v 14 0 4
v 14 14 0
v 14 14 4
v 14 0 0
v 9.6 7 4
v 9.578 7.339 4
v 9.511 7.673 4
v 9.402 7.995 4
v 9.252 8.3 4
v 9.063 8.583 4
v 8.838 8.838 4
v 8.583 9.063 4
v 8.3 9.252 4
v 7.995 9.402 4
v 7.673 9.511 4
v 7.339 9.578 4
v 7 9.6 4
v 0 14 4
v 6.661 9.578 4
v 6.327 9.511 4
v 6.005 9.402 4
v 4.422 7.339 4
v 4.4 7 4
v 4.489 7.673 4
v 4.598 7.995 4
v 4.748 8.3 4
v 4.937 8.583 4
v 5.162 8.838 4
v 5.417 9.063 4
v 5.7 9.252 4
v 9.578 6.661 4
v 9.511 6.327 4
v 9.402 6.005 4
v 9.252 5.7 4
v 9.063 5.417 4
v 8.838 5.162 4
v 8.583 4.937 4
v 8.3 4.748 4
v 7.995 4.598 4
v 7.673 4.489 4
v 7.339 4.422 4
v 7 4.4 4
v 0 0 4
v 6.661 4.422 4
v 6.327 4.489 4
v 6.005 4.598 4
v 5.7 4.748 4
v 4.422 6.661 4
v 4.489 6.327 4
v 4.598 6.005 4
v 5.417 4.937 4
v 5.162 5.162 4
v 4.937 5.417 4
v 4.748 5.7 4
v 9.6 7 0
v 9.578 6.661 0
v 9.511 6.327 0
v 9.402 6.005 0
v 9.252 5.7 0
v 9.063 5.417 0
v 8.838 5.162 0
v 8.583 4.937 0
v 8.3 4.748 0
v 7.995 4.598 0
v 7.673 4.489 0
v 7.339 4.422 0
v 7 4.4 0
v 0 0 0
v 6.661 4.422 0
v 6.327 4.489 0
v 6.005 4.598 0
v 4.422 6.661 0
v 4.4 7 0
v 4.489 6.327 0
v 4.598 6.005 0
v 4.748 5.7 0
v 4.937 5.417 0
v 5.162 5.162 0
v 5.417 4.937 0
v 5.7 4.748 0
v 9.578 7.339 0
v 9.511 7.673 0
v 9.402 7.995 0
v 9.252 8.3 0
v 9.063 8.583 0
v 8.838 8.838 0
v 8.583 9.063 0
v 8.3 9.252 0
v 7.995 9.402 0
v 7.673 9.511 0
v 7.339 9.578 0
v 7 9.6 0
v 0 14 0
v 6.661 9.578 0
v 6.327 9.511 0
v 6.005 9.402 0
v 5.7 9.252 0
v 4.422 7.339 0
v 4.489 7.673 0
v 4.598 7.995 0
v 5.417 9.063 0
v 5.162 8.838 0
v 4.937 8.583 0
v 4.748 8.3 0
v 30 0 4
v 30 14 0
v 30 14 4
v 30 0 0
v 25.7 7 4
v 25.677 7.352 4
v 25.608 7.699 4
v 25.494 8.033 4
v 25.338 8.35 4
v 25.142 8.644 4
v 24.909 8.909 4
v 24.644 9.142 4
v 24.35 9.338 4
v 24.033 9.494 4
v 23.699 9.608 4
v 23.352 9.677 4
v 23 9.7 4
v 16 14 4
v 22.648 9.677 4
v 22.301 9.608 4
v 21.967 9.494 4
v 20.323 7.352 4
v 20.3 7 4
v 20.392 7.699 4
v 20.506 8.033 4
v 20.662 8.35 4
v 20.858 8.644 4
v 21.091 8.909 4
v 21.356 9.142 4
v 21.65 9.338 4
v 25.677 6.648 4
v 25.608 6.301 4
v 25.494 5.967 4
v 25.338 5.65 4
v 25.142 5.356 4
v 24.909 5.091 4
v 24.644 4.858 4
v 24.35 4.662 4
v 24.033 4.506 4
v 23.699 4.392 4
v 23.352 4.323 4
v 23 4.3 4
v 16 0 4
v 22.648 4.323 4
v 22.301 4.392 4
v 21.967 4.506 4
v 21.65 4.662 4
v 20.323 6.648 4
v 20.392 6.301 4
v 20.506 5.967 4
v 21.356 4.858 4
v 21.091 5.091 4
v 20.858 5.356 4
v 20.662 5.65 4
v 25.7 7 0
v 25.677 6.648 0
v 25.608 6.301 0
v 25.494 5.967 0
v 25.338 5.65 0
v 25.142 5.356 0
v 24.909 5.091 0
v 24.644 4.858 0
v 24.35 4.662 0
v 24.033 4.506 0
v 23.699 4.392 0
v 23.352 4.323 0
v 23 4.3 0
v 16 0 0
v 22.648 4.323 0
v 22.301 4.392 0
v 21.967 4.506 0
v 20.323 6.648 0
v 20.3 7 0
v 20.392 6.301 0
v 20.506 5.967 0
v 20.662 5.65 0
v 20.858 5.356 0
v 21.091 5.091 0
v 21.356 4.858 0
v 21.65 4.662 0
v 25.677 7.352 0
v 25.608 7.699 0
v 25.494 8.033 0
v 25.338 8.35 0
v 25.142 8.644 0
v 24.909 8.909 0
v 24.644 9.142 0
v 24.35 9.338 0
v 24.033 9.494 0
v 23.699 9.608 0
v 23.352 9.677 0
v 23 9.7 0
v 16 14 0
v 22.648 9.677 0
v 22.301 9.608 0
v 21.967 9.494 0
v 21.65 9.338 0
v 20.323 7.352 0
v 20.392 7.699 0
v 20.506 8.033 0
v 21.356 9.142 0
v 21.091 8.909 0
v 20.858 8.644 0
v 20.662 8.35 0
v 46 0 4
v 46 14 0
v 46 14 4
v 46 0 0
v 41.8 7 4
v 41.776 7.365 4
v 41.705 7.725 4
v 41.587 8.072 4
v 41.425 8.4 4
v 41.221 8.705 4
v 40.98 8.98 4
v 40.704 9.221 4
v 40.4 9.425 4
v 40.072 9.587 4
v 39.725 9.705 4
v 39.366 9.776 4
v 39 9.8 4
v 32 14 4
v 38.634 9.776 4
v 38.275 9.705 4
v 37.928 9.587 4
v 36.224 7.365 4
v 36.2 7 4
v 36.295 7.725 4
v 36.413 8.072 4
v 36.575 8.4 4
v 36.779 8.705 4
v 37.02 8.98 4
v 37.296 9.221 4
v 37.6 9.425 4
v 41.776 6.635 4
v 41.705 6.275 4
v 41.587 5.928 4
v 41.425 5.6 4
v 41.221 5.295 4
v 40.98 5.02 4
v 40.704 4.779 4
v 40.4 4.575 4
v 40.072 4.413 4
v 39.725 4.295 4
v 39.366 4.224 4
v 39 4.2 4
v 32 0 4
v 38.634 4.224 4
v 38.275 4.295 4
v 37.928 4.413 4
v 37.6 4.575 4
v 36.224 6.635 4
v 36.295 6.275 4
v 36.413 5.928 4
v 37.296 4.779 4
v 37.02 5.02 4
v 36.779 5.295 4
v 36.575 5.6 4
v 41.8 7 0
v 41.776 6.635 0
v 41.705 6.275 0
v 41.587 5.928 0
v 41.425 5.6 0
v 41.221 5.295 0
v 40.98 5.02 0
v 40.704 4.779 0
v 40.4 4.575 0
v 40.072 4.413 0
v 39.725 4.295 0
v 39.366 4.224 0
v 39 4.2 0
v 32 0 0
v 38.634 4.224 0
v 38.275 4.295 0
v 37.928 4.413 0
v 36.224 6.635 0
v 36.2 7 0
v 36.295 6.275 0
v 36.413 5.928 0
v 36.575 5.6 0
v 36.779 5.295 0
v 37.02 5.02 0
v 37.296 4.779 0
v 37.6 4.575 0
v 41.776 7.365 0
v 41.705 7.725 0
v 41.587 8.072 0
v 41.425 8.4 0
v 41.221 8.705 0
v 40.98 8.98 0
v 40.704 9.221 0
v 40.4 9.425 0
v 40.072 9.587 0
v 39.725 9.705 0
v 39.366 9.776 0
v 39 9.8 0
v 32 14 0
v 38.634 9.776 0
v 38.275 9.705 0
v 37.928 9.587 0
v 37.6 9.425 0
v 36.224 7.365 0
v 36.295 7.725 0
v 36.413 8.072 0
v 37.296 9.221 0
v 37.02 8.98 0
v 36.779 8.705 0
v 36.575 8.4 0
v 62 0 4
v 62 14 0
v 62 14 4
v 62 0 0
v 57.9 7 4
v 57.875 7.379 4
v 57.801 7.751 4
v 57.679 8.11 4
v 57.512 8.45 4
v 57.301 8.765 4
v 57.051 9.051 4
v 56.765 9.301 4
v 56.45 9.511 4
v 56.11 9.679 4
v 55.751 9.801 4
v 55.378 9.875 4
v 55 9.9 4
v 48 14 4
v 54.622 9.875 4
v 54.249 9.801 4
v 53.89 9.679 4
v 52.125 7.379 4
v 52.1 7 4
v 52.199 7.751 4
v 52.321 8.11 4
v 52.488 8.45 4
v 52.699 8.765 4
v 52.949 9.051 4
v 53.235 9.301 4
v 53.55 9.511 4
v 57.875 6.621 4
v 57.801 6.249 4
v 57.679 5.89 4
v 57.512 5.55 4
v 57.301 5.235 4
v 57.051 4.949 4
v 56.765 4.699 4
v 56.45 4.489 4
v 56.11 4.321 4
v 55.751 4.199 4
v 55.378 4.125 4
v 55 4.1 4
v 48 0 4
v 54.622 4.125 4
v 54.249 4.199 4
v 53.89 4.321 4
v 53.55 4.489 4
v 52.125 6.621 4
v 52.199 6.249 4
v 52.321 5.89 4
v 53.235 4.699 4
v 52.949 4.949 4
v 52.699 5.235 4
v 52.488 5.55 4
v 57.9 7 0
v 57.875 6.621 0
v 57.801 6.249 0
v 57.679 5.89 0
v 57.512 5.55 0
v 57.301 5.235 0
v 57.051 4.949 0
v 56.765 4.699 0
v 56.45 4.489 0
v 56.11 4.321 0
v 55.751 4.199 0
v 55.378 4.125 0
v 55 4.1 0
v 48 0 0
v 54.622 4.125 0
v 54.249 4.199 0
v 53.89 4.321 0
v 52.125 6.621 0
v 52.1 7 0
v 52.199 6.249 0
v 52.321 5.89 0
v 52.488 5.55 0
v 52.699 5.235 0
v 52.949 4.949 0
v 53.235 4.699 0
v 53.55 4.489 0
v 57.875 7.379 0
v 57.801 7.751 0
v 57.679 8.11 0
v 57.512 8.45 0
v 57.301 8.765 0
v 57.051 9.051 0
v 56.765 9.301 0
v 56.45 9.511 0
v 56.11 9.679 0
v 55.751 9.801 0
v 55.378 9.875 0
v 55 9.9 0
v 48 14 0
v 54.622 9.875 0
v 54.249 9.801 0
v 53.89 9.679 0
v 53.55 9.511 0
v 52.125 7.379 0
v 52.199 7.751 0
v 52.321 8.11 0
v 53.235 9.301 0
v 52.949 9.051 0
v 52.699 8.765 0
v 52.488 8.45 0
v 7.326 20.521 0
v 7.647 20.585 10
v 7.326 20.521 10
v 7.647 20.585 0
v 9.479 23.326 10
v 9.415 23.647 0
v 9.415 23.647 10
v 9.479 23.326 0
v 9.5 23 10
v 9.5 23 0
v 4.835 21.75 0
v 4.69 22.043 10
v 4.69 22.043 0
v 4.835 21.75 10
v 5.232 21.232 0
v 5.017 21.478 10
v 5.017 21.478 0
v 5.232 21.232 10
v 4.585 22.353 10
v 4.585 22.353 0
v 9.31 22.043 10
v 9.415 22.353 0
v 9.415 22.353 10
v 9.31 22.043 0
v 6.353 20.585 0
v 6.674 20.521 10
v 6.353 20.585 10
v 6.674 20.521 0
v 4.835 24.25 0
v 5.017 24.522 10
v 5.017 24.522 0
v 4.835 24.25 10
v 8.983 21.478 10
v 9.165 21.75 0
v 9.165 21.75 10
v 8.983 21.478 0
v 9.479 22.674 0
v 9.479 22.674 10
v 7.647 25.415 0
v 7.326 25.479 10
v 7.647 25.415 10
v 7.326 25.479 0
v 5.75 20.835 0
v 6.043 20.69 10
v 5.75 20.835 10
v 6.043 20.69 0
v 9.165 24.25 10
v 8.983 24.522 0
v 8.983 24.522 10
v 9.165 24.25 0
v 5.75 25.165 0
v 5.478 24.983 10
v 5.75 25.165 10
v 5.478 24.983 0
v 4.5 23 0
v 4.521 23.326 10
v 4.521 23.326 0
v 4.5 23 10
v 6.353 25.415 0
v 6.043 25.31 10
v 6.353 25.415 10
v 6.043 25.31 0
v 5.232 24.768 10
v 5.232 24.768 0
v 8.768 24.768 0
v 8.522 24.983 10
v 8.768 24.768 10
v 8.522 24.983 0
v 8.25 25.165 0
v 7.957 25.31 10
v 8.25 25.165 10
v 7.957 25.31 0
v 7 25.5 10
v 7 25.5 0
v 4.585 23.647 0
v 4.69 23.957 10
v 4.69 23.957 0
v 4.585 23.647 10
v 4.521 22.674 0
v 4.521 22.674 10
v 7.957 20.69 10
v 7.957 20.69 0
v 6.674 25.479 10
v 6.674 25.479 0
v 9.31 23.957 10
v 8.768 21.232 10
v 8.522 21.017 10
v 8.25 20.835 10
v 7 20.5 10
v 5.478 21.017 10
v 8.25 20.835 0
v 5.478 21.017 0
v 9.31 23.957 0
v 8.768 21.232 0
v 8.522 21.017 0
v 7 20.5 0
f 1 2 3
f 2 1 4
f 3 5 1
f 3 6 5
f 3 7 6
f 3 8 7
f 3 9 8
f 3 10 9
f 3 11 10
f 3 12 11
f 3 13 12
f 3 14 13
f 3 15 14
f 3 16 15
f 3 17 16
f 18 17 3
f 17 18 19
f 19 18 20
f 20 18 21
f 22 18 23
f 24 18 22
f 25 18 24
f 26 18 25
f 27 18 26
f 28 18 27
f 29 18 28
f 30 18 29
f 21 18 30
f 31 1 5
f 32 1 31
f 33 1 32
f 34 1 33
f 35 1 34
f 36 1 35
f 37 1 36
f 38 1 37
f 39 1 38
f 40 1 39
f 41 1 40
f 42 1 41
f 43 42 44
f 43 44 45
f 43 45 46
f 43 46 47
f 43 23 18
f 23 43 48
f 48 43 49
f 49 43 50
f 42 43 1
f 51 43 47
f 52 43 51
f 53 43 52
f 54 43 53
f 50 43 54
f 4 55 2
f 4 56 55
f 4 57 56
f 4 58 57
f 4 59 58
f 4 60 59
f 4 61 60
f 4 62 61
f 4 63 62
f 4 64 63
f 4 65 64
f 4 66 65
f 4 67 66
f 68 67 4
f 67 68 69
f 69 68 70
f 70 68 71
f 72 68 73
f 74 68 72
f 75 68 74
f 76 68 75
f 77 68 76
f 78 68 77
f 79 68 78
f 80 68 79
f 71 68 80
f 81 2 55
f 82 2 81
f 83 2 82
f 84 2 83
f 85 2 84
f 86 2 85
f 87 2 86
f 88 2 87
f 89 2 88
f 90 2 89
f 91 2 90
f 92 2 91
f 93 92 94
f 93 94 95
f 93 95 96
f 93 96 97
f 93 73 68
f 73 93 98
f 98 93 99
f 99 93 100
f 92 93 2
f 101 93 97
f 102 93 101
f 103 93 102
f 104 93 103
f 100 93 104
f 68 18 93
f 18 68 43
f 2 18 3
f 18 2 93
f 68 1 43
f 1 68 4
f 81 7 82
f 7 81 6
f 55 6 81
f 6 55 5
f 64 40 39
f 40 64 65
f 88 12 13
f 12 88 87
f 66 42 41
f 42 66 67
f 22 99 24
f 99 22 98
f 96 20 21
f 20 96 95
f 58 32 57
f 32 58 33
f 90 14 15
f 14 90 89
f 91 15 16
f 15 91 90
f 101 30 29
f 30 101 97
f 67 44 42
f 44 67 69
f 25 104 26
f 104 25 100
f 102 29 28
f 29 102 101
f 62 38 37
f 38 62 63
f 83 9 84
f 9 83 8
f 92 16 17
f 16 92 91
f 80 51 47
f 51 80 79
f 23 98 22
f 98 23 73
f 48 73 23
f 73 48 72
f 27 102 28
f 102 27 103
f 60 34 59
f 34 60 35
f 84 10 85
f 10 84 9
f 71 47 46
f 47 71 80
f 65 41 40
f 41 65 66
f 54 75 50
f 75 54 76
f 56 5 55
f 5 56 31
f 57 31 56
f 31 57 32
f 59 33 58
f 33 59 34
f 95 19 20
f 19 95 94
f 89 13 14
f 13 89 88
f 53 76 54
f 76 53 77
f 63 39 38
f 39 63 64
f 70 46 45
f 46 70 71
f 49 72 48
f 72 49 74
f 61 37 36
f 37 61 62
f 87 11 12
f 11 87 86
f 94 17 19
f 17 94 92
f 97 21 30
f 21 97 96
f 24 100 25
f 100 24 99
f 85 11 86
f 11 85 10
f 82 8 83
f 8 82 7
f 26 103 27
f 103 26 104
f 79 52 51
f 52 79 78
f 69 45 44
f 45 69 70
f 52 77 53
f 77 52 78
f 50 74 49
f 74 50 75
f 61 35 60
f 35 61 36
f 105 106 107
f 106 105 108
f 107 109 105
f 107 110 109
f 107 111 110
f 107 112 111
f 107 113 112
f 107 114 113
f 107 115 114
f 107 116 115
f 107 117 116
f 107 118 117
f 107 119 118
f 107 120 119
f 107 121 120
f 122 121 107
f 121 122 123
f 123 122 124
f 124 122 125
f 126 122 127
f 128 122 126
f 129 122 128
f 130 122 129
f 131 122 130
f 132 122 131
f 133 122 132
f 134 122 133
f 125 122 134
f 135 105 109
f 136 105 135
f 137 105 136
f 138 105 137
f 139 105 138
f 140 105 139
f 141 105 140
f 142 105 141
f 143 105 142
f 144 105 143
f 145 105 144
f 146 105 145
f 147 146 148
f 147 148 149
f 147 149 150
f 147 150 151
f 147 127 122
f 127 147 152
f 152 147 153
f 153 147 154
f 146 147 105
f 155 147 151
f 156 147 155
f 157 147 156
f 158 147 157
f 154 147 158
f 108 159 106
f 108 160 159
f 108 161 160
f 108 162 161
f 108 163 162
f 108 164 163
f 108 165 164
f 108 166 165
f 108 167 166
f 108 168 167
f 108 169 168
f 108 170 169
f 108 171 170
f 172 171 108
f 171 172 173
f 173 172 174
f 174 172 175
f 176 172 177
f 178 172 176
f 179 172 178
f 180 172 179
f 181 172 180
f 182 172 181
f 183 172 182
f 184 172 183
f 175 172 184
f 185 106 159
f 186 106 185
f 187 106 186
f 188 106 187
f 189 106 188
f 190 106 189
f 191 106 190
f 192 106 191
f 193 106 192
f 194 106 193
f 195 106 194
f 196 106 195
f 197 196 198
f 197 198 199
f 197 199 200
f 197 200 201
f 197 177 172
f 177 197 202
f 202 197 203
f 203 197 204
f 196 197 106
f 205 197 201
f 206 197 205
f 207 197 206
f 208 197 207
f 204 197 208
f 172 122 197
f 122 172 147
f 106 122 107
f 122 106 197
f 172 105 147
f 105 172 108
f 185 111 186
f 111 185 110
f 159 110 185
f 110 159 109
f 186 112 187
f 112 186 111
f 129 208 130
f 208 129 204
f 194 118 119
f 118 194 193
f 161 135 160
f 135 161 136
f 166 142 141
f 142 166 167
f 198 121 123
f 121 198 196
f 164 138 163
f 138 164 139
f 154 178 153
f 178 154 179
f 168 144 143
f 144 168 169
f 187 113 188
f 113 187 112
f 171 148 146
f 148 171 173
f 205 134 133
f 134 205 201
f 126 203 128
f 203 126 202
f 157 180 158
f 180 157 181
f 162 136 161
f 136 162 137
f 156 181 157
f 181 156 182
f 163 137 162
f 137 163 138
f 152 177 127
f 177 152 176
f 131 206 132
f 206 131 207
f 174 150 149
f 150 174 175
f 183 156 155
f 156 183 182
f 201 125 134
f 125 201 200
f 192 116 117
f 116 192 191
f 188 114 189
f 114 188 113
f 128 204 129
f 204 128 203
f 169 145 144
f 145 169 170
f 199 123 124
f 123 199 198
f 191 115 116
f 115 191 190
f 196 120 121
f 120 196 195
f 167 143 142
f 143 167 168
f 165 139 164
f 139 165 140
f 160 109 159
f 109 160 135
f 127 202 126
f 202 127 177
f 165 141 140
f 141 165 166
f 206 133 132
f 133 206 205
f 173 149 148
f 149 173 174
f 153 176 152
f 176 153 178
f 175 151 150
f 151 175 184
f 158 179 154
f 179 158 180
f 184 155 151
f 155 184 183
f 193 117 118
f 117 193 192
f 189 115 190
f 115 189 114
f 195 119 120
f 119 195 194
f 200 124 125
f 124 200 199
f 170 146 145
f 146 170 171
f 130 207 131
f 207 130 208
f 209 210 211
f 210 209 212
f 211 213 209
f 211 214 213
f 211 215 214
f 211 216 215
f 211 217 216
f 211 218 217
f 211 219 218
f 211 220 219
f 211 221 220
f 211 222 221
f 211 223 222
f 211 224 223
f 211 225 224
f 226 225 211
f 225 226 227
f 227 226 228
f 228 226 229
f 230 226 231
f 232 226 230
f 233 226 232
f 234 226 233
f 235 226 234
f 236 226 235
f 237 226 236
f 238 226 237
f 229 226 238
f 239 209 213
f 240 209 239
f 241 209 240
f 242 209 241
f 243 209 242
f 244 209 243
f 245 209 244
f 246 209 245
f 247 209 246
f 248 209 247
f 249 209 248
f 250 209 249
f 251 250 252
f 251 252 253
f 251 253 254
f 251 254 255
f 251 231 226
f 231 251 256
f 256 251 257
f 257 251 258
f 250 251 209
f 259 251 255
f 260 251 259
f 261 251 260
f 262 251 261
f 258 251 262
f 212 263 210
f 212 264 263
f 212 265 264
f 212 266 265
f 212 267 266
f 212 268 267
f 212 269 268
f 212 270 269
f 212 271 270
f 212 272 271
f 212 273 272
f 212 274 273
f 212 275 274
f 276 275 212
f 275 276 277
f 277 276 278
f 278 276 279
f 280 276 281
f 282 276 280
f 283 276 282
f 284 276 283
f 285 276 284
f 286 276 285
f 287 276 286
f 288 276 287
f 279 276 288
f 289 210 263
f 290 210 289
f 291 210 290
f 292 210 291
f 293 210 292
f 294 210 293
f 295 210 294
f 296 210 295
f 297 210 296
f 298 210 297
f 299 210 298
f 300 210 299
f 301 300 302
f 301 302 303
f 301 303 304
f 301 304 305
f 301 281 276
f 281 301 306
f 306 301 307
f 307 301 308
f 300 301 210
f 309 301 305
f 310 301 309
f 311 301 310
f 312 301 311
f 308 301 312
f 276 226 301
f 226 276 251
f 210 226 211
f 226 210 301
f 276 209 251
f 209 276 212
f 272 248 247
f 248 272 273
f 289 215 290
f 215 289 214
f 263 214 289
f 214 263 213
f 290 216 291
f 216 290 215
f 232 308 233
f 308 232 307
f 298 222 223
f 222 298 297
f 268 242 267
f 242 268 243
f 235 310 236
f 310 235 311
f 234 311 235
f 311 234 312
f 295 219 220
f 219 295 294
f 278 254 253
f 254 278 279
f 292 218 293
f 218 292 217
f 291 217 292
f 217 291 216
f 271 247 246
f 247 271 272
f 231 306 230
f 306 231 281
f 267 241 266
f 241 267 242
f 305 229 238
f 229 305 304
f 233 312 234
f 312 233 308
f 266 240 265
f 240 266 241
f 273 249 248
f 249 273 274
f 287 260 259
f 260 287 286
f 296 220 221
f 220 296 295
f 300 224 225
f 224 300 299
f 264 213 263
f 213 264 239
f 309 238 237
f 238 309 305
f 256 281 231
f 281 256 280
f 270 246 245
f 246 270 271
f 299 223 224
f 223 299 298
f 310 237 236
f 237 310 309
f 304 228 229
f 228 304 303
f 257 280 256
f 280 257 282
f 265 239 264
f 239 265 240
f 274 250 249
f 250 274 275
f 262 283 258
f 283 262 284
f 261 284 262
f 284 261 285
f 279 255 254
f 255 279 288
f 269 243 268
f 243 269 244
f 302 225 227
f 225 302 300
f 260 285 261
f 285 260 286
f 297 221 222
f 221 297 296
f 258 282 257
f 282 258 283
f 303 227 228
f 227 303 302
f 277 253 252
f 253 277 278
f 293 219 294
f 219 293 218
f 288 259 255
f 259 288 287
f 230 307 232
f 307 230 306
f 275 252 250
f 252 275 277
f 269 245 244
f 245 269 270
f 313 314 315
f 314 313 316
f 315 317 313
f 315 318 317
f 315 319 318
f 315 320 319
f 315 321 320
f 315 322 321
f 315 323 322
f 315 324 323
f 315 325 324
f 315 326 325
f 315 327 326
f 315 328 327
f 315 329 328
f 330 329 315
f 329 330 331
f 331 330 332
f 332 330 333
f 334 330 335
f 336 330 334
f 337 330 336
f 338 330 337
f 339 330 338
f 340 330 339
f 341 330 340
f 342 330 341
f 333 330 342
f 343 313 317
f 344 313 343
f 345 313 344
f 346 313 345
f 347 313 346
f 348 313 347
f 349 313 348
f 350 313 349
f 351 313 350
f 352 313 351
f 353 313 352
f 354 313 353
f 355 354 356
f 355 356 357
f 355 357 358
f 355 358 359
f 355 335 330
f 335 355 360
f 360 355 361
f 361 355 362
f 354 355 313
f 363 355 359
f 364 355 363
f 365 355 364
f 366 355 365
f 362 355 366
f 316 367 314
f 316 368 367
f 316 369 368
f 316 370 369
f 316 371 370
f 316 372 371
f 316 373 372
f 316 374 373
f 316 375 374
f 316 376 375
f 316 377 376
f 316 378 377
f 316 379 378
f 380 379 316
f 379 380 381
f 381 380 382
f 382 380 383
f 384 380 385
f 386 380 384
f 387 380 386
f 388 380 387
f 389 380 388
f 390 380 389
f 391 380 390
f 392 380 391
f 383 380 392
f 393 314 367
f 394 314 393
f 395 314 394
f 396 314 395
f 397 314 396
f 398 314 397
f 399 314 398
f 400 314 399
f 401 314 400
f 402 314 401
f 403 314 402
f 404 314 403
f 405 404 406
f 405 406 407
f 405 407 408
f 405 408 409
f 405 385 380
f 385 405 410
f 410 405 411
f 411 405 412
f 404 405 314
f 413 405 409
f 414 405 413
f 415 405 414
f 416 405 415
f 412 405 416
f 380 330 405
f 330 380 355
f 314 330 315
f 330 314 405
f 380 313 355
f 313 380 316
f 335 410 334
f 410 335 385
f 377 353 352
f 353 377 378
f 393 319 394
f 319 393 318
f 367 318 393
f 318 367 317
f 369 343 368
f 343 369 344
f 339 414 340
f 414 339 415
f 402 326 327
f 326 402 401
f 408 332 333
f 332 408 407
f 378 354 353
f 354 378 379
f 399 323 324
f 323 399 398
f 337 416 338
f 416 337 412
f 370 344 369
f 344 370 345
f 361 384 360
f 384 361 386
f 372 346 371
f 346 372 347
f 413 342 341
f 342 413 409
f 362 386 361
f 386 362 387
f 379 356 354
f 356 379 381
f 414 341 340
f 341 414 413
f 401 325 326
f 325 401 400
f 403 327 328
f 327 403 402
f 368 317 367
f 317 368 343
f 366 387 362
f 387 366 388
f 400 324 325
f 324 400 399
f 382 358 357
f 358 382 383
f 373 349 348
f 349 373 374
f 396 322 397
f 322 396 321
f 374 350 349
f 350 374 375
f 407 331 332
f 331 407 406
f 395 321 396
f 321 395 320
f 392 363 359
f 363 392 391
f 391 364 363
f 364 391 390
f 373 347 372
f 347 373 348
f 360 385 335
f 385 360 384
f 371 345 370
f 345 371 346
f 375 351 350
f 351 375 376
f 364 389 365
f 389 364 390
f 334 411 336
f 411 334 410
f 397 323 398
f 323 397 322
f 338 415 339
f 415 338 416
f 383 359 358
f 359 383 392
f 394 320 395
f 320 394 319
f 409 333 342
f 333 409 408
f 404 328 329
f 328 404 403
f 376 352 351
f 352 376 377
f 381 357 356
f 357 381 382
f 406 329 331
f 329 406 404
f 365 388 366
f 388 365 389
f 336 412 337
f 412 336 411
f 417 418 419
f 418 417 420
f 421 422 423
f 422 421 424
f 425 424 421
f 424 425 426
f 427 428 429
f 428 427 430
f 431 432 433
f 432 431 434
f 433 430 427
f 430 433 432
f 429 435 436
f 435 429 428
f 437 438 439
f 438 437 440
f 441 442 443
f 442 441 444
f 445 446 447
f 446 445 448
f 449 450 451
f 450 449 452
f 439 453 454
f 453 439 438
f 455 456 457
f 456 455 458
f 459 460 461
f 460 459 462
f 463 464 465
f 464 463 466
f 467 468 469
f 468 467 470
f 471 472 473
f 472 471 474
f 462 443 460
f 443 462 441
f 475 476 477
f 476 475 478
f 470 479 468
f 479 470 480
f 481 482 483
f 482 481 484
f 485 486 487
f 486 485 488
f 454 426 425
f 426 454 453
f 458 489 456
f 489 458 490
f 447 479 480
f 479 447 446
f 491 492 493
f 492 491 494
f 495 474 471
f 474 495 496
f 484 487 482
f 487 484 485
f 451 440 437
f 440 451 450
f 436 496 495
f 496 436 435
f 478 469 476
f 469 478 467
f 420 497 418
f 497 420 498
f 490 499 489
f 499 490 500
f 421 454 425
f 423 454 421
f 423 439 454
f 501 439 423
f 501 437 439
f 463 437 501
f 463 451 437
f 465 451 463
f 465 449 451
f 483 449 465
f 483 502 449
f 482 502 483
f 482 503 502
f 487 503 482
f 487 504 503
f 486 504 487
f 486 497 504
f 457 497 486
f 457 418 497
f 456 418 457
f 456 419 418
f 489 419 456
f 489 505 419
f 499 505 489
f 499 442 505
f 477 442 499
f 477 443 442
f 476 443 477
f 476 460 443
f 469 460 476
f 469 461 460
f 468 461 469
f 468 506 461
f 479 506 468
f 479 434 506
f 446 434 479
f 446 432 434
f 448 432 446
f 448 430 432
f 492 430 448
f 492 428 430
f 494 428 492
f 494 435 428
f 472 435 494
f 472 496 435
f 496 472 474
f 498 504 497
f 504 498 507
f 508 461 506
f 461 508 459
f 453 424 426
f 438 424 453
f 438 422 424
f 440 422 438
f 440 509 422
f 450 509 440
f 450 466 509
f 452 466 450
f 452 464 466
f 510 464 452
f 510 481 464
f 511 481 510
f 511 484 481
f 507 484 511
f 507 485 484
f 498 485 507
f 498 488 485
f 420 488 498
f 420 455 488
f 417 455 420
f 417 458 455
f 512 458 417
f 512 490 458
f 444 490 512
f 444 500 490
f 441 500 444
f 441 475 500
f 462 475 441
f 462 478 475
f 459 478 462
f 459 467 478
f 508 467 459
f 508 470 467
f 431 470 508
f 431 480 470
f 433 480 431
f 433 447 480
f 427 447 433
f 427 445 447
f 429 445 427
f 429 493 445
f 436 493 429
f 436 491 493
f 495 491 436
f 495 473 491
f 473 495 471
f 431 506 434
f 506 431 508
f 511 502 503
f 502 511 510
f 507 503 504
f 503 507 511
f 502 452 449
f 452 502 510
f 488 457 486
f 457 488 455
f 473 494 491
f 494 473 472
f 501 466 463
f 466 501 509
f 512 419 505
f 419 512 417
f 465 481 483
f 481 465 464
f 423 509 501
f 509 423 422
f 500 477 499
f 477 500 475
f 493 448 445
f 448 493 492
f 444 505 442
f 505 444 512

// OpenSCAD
// Small hole/peg clearance coupon. Print before modeling a functional mating assembly.
nominal=5;
gaps=[0.1,0.2,0.3,0.4];
$fn=48;
assert(nominal>0);
for(i=[0:len(gaps)-1]) {
  translate([i*16,0,0]) difference(){
    cube([14,14,4]);
    translate([7,7,-1]) cylinder(h=6,d=nominal+2*gaps[i]);
  }
}
translate([7,23,0]) cylinder(h=10,d=nominal);
